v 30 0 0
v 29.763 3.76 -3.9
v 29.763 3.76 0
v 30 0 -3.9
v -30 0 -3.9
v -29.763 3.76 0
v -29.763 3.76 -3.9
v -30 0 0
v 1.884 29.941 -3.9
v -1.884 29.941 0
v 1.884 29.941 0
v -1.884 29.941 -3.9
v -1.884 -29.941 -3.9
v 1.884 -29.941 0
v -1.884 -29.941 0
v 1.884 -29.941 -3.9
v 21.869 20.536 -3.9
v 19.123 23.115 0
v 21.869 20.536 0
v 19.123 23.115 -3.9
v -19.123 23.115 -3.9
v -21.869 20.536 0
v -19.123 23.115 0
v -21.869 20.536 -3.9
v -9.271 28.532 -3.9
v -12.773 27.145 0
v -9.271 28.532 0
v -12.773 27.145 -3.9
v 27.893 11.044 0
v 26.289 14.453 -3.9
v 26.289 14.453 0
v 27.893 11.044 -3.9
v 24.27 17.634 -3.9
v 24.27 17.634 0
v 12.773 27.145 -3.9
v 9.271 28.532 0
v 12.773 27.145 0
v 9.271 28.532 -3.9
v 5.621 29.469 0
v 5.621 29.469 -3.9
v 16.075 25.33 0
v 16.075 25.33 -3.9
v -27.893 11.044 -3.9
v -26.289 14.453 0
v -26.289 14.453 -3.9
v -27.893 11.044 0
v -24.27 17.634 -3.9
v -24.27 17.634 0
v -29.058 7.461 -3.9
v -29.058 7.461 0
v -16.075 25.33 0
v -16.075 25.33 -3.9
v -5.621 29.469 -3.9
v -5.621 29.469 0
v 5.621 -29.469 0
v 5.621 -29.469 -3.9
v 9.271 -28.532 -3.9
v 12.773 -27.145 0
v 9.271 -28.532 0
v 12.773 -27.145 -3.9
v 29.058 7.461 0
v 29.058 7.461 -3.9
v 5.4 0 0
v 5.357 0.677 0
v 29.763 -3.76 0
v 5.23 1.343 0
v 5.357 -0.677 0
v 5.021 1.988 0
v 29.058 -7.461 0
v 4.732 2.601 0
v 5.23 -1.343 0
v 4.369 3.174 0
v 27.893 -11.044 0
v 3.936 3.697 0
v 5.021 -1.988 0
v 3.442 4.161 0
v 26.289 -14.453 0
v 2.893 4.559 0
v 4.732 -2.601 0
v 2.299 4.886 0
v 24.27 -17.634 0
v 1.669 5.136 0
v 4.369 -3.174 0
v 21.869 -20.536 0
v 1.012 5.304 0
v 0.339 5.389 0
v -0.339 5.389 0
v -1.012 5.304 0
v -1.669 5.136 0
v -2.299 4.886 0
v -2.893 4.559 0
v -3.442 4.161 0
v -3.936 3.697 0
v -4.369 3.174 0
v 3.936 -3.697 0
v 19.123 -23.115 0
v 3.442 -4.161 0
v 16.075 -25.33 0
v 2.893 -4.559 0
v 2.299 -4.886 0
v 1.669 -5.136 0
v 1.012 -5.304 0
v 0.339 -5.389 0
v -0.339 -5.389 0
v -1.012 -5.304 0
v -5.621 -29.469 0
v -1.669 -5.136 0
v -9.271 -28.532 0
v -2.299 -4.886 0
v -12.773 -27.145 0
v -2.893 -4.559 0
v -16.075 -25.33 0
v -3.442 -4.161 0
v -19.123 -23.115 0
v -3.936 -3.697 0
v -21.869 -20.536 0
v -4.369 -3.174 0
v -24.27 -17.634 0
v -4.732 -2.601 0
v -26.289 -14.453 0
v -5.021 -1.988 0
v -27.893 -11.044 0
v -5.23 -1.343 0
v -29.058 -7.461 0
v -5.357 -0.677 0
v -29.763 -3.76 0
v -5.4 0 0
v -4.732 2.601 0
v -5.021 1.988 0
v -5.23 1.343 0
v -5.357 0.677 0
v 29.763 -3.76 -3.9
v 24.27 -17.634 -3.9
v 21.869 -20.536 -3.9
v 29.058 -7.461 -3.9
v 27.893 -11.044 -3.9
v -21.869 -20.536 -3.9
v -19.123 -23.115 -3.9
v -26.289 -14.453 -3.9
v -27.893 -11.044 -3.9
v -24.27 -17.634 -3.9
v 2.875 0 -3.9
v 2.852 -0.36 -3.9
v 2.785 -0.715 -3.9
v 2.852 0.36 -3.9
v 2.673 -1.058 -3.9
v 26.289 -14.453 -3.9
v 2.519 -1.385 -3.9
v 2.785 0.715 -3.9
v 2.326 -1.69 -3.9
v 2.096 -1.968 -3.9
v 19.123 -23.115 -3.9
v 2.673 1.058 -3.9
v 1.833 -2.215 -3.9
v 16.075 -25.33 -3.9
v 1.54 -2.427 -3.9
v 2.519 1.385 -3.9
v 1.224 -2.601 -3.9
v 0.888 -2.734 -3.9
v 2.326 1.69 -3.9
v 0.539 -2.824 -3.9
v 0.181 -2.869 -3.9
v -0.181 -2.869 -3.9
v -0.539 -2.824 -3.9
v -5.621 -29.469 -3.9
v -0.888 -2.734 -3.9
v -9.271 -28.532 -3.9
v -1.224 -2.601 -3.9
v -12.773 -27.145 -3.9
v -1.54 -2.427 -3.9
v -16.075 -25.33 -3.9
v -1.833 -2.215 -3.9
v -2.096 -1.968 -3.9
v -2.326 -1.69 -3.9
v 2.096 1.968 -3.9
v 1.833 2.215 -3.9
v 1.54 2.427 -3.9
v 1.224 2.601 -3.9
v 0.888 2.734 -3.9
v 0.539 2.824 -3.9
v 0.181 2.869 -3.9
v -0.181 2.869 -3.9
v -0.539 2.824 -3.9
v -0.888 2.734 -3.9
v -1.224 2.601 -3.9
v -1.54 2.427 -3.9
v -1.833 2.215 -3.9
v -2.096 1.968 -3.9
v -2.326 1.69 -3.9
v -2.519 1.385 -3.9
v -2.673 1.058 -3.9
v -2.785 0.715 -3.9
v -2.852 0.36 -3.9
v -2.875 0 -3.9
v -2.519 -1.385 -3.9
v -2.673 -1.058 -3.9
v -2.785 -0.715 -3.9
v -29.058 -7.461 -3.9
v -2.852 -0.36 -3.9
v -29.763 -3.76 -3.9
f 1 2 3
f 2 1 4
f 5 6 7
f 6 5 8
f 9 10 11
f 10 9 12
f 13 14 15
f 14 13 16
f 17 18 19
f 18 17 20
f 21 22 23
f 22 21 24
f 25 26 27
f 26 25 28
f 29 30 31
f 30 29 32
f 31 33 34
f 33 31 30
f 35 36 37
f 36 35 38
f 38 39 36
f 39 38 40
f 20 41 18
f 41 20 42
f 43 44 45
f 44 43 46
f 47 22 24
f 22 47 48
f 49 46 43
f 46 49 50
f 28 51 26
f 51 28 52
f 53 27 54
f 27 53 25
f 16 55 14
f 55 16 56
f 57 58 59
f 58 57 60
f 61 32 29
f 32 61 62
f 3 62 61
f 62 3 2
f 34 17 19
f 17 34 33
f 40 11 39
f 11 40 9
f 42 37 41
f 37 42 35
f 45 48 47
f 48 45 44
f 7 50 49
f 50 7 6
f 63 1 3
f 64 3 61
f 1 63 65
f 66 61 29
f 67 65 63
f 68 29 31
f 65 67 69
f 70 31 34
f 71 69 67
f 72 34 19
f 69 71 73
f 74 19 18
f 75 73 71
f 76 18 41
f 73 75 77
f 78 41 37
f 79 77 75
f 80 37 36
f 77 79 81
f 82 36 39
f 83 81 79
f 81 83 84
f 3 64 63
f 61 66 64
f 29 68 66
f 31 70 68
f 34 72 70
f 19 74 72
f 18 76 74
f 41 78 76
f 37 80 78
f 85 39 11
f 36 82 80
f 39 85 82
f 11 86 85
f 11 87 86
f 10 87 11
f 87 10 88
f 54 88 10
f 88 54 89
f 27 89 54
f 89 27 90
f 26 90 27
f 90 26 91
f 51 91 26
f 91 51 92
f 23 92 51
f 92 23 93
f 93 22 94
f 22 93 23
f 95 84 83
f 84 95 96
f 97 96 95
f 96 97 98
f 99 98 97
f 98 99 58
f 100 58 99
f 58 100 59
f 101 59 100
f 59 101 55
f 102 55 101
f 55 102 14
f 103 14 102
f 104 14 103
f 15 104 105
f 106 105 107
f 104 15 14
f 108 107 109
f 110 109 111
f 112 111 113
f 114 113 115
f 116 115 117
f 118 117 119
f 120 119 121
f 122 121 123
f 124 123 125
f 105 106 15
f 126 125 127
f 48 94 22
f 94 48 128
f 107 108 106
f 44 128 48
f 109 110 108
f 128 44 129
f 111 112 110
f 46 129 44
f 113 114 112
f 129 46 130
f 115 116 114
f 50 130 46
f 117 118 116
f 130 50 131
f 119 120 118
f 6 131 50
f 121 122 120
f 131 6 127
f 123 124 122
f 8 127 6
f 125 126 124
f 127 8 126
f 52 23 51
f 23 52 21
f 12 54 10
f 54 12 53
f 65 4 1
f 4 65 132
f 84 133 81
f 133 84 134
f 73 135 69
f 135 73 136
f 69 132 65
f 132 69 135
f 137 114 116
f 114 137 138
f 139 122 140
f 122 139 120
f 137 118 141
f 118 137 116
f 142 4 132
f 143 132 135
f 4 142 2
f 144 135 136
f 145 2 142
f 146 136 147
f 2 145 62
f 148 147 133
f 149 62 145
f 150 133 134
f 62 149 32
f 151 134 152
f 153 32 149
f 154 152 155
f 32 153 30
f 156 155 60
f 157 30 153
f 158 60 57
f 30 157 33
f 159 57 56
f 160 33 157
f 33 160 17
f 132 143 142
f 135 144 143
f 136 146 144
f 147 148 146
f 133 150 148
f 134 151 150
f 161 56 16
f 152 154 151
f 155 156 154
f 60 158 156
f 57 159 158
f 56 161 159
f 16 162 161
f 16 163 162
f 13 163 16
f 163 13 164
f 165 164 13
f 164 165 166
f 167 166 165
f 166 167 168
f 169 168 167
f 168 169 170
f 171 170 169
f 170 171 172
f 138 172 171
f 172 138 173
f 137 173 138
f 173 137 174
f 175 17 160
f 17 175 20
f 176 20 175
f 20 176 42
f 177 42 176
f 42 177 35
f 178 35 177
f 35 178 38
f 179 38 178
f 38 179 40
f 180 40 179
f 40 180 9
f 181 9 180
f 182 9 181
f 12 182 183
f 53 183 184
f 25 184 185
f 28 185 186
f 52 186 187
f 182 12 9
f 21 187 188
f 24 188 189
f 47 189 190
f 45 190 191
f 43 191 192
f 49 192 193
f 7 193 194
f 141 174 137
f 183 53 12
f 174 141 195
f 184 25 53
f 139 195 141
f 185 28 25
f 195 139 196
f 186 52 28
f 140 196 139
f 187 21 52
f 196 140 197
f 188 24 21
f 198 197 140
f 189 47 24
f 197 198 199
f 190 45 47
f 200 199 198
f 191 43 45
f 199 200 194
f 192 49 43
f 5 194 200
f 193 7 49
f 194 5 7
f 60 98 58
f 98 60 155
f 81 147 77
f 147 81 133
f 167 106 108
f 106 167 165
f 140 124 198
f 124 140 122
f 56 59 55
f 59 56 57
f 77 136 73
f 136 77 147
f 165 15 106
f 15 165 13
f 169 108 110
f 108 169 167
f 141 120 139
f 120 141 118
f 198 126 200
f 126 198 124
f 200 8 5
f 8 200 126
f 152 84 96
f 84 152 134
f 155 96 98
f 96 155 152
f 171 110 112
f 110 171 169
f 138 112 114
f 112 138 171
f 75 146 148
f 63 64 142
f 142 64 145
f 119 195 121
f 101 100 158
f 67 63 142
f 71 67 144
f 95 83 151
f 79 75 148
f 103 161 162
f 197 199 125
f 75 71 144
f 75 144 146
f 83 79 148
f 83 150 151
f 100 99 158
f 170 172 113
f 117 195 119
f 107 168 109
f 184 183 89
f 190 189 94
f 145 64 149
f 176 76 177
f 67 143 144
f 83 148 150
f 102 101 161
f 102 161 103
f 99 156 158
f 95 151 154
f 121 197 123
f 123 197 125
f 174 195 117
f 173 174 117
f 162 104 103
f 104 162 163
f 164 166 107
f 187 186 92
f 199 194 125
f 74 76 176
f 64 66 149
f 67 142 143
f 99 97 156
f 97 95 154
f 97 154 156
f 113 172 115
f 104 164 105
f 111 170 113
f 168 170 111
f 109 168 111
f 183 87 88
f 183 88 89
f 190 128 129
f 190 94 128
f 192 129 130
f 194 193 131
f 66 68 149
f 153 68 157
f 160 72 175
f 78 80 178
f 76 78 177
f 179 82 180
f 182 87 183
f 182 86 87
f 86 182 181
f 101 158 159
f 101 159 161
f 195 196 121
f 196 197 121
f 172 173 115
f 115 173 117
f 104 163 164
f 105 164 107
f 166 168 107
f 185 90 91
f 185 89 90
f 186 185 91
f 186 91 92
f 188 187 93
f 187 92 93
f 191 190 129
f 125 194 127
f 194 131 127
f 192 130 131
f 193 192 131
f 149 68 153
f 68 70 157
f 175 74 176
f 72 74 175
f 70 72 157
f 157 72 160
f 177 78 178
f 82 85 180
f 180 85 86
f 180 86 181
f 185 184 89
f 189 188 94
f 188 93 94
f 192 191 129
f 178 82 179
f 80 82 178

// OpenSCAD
$fn = 50;


difference() {
	union() {
		translate(v = [0, 0, -3.9000000000]) {
			cylinder(h = 3.9000000000, r = 30.0000000000);
		}
		translate(v = [0, 0, -6.9000000000]) {
			cylinder(h = 6.9000000000, r = 2.8750000000);
		}
	}
	union() {
		translate(v = [0, 0, 0]) {
			rotate(a = [0, 0, 0]) {
				difference() {
					union() {
						translate(v = [0, 0, -6.9000000000]) {
							cylinder(h = 6.9000000000, r = 2.6000000000);
						}
						translate(v = [0, 0, -3.9000000000]) {
							cylinder(h = 3.9000000000, r1 = 2.8750000000, r2 = 5.4000000000);
						}
						translate(v = [0, 0, -6.9000000000]) {
							cylinder(h = 6.9000000000, r = 2.8750000000);
						}
						translate(v = [0, 0, -6.9000000000]) {
							cylinder(h = 6.9000000000, r = 2.6000000000);
						}
					}
					union();
				}
			}
		}
	}
}
